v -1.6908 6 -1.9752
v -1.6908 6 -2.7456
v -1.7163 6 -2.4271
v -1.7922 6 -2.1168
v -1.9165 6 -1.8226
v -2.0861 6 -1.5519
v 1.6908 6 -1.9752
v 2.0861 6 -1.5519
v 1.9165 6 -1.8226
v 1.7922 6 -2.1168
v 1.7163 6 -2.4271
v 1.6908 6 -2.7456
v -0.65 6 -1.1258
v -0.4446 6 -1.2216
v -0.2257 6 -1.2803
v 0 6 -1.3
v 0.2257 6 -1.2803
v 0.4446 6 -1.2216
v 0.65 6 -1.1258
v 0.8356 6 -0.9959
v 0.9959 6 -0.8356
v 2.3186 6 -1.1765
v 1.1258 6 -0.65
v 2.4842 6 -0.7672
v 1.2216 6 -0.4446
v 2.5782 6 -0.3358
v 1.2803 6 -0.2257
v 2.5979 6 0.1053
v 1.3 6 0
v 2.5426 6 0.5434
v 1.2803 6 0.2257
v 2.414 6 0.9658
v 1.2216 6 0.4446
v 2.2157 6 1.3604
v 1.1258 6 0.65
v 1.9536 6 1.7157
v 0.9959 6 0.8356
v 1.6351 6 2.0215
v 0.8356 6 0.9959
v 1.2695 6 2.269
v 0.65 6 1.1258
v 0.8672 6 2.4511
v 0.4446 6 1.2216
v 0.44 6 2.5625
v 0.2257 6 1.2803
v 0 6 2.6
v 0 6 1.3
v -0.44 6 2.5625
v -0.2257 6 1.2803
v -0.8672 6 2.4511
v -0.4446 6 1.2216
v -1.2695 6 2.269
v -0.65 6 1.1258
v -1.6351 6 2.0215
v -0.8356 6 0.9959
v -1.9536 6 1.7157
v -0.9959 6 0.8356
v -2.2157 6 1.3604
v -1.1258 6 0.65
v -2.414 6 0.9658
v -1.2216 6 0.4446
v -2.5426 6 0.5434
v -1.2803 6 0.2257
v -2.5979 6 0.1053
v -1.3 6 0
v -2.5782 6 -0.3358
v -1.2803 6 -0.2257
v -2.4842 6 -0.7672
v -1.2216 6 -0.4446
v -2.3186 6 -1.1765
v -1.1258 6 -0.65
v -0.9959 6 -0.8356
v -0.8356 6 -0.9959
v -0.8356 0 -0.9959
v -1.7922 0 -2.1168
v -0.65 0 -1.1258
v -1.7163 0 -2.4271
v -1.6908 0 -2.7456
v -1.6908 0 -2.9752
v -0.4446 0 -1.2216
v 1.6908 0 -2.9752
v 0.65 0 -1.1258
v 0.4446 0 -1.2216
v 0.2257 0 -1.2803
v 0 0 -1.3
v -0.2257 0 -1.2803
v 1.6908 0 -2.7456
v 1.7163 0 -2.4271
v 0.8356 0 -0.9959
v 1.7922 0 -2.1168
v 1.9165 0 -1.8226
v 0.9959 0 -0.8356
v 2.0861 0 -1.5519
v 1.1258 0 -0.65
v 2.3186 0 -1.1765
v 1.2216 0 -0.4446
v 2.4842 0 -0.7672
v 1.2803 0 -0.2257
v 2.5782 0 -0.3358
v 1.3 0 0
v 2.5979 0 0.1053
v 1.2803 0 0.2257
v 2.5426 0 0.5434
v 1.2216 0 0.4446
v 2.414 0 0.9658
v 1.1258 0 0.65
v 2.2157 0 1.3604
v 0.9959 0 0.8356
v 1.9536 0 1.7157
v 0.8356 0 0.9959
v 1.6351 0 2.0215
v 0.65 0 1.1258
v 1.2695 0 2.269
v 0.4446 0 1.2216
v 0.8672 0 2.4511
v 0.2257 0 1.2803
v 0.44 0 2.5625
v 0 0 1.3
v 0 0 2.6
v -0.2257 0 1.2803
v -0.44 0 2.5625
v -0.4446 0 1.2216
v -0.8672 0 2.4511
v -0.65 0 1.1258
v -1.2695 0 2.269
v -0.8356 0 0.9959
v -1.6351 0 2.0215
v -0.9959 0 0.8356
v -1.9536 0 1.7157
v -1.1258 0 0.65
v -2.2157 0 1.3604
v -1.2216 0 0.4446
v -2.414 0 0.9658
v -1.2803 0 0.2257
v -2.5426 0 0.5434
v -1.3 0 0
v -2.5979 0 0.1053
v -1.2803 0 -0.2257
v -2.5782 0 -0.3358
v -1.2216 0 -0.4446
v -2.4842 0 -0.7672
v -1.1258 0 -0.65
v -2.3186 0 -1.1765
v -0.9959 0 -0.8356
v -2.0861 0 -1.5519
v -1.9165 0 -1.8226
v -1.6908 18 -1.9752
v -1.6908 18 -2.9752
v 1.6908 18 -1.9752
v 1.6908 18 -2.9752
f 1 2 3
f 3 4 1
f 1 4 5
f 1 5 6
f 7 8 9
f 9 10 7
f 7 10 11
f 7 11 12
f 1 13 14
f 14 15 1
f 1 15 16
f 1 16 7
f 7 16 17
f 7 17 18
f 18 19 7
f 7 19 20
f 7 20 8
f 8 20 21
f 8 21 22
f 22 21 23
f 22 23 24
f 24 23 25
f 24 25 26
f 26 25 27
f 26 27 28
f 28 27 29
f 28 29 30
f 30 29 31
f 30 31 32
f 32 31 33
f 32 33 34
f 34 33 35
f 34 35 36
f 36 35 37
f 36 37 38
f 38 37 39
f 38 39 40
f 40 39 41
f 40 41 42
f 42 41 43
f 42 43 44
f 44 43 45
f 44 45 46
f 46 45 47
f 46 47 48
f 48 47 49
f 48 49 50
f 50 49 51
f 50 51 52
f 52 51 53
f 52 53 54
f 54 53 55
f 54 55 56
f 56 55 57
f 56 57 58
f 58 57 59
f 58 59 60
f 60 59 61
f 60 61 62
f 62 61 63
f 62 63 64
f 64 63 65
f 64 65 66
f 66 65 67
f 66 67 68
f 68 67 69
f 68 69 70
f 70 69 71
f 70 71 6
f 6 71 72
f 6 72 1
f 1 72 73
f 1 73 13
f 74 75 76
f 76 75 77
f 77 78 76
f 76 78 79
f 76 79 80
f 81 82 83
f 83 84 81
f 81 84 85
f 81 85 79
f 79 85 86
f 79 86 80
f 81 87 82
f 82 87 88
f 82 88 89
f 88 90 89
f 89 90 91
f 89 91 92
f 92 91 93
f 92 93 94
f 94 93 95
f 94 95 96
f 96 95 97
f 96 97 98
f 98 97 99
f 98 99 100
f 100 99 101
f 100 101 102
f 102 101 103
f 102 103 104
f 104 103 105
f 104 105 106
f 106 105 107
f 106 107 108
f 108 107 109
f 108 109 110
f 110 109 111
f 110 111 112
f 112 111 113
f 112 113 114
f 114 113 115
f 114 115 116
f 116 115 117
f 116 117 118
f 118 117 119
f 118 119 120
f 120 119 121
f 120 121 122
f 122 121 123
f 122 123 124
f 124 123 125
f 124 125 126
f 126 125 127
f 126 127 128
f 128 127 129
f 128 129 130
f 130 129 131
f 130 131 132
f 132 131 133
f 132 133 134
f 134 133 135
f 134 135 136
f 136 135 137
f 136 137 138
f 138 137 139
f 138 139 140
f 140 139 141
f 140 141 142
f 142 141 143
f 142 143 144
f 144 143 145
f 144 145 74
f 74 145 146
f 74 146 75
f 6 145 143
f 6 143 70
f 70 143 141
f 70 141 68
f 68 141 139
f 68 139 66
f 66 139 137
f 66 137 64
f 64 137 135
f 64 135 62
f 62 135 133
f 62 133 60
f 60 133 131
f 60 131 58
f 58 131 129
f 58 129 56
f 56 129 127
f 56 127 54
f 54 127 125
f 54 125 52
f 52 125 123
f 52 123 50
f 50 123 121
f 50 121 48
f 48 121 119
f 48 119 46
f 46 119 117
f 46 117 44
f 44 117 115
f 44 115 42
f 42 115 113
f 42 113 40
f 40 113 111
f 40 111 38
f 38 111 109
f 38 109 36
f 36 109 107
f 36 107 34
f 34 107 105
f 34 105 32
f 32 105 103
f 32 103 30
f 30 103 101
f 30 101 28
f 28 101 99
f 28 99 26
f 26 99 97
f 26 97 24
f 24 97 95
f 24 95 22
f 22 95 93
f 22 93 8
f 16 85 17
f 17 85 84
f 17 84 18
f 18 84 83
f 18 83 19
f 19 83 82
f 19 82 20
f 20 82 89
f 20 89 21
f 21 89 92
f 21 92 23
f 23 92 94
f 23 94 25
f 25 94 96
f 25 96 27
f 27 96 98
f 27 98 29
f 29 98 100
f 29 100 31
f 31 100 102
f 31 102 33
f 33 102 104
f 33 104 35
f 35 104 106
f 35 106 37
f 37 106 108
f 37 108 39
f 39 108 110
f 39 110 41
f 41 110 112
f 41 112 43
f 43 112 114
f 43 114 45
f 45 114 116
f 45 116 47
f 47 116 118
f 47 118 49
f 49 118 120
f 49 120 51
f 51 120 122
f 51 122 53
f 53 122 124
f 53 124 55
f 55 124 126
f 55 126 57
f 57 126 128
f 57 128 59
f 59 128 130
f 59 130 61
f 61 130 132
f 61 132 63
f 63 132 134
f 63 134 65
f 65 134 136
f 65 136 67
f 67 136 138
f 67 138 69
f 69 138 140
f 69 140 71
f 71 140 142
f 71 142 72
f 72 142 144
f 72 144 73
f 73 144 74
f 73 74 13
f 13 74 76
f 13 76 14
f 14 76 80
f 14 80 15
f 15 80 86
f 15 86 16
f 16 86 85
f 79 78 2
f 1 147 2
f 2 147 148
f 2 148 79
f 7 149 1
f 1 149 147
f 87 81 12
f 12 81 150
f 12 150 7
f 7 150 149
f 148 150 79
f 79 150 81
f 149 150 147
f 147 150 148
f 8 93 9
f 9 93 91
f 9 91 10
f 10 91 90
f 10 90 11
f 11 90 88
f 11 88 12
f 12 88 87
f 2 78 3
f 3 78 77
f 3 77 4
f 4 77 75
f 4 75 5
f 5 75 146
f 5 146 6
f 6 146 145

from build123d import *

# Parameters (mm, degrees)
SKETCH_1_R      = 1.3
EXTRUDE_1_DEPTH = 6
SKETCH_2_W      = 3.381536624
SKETCH_2_H      = 1
EXTRUDE_2_DEPTH = 18
FILLET_1_R      = 2


with BuildPart() as part:
    # Эскиз1 → Бобышка-Вытянуть1 (new body)
    with BuildSketch(Plane(origin=(0, 0, 0), x_dir=(1, 0, 0), z_dir=(0, 1, 0))):
        with BuildLine():
            Line((-1.690768312, 1.975171515), (1.690768312, 1.975171515))
            ThreePointArc((1.690768312, 1.975171515), (0, -2.6), (-1.690768312, 1.975171515))
        make_face()
        with Locations(Location((0, 0, 0), (0, 0, 270))):
            Circle(SKETCH_1_R, mode=Mode.SUBTRACT)
    extrude(amount=EXTRUDE_1_DEPTH)

    # Эскиз2 → Бобышка-Вытянуть2 (add)
    with BuildSketch(Plane.XZ):
        with Locations((0, -2.475171515)):
            Rectangle(SKETCH_2_W, SKETCH_2_H)
    extrude(amount=-EXTRUDE_2_DEPTH)

    # Скругление1
    fillet_1_edges = [part.edges().sort_by_distance(p)[0] for p in [
        (-1.690768312, 3, -1.975171515),
        (1.690768312, 3, -1.975171515),
    ]]
    fillet(fillet_1_edges, radius=FILLET_1_R)


solid = part.part
